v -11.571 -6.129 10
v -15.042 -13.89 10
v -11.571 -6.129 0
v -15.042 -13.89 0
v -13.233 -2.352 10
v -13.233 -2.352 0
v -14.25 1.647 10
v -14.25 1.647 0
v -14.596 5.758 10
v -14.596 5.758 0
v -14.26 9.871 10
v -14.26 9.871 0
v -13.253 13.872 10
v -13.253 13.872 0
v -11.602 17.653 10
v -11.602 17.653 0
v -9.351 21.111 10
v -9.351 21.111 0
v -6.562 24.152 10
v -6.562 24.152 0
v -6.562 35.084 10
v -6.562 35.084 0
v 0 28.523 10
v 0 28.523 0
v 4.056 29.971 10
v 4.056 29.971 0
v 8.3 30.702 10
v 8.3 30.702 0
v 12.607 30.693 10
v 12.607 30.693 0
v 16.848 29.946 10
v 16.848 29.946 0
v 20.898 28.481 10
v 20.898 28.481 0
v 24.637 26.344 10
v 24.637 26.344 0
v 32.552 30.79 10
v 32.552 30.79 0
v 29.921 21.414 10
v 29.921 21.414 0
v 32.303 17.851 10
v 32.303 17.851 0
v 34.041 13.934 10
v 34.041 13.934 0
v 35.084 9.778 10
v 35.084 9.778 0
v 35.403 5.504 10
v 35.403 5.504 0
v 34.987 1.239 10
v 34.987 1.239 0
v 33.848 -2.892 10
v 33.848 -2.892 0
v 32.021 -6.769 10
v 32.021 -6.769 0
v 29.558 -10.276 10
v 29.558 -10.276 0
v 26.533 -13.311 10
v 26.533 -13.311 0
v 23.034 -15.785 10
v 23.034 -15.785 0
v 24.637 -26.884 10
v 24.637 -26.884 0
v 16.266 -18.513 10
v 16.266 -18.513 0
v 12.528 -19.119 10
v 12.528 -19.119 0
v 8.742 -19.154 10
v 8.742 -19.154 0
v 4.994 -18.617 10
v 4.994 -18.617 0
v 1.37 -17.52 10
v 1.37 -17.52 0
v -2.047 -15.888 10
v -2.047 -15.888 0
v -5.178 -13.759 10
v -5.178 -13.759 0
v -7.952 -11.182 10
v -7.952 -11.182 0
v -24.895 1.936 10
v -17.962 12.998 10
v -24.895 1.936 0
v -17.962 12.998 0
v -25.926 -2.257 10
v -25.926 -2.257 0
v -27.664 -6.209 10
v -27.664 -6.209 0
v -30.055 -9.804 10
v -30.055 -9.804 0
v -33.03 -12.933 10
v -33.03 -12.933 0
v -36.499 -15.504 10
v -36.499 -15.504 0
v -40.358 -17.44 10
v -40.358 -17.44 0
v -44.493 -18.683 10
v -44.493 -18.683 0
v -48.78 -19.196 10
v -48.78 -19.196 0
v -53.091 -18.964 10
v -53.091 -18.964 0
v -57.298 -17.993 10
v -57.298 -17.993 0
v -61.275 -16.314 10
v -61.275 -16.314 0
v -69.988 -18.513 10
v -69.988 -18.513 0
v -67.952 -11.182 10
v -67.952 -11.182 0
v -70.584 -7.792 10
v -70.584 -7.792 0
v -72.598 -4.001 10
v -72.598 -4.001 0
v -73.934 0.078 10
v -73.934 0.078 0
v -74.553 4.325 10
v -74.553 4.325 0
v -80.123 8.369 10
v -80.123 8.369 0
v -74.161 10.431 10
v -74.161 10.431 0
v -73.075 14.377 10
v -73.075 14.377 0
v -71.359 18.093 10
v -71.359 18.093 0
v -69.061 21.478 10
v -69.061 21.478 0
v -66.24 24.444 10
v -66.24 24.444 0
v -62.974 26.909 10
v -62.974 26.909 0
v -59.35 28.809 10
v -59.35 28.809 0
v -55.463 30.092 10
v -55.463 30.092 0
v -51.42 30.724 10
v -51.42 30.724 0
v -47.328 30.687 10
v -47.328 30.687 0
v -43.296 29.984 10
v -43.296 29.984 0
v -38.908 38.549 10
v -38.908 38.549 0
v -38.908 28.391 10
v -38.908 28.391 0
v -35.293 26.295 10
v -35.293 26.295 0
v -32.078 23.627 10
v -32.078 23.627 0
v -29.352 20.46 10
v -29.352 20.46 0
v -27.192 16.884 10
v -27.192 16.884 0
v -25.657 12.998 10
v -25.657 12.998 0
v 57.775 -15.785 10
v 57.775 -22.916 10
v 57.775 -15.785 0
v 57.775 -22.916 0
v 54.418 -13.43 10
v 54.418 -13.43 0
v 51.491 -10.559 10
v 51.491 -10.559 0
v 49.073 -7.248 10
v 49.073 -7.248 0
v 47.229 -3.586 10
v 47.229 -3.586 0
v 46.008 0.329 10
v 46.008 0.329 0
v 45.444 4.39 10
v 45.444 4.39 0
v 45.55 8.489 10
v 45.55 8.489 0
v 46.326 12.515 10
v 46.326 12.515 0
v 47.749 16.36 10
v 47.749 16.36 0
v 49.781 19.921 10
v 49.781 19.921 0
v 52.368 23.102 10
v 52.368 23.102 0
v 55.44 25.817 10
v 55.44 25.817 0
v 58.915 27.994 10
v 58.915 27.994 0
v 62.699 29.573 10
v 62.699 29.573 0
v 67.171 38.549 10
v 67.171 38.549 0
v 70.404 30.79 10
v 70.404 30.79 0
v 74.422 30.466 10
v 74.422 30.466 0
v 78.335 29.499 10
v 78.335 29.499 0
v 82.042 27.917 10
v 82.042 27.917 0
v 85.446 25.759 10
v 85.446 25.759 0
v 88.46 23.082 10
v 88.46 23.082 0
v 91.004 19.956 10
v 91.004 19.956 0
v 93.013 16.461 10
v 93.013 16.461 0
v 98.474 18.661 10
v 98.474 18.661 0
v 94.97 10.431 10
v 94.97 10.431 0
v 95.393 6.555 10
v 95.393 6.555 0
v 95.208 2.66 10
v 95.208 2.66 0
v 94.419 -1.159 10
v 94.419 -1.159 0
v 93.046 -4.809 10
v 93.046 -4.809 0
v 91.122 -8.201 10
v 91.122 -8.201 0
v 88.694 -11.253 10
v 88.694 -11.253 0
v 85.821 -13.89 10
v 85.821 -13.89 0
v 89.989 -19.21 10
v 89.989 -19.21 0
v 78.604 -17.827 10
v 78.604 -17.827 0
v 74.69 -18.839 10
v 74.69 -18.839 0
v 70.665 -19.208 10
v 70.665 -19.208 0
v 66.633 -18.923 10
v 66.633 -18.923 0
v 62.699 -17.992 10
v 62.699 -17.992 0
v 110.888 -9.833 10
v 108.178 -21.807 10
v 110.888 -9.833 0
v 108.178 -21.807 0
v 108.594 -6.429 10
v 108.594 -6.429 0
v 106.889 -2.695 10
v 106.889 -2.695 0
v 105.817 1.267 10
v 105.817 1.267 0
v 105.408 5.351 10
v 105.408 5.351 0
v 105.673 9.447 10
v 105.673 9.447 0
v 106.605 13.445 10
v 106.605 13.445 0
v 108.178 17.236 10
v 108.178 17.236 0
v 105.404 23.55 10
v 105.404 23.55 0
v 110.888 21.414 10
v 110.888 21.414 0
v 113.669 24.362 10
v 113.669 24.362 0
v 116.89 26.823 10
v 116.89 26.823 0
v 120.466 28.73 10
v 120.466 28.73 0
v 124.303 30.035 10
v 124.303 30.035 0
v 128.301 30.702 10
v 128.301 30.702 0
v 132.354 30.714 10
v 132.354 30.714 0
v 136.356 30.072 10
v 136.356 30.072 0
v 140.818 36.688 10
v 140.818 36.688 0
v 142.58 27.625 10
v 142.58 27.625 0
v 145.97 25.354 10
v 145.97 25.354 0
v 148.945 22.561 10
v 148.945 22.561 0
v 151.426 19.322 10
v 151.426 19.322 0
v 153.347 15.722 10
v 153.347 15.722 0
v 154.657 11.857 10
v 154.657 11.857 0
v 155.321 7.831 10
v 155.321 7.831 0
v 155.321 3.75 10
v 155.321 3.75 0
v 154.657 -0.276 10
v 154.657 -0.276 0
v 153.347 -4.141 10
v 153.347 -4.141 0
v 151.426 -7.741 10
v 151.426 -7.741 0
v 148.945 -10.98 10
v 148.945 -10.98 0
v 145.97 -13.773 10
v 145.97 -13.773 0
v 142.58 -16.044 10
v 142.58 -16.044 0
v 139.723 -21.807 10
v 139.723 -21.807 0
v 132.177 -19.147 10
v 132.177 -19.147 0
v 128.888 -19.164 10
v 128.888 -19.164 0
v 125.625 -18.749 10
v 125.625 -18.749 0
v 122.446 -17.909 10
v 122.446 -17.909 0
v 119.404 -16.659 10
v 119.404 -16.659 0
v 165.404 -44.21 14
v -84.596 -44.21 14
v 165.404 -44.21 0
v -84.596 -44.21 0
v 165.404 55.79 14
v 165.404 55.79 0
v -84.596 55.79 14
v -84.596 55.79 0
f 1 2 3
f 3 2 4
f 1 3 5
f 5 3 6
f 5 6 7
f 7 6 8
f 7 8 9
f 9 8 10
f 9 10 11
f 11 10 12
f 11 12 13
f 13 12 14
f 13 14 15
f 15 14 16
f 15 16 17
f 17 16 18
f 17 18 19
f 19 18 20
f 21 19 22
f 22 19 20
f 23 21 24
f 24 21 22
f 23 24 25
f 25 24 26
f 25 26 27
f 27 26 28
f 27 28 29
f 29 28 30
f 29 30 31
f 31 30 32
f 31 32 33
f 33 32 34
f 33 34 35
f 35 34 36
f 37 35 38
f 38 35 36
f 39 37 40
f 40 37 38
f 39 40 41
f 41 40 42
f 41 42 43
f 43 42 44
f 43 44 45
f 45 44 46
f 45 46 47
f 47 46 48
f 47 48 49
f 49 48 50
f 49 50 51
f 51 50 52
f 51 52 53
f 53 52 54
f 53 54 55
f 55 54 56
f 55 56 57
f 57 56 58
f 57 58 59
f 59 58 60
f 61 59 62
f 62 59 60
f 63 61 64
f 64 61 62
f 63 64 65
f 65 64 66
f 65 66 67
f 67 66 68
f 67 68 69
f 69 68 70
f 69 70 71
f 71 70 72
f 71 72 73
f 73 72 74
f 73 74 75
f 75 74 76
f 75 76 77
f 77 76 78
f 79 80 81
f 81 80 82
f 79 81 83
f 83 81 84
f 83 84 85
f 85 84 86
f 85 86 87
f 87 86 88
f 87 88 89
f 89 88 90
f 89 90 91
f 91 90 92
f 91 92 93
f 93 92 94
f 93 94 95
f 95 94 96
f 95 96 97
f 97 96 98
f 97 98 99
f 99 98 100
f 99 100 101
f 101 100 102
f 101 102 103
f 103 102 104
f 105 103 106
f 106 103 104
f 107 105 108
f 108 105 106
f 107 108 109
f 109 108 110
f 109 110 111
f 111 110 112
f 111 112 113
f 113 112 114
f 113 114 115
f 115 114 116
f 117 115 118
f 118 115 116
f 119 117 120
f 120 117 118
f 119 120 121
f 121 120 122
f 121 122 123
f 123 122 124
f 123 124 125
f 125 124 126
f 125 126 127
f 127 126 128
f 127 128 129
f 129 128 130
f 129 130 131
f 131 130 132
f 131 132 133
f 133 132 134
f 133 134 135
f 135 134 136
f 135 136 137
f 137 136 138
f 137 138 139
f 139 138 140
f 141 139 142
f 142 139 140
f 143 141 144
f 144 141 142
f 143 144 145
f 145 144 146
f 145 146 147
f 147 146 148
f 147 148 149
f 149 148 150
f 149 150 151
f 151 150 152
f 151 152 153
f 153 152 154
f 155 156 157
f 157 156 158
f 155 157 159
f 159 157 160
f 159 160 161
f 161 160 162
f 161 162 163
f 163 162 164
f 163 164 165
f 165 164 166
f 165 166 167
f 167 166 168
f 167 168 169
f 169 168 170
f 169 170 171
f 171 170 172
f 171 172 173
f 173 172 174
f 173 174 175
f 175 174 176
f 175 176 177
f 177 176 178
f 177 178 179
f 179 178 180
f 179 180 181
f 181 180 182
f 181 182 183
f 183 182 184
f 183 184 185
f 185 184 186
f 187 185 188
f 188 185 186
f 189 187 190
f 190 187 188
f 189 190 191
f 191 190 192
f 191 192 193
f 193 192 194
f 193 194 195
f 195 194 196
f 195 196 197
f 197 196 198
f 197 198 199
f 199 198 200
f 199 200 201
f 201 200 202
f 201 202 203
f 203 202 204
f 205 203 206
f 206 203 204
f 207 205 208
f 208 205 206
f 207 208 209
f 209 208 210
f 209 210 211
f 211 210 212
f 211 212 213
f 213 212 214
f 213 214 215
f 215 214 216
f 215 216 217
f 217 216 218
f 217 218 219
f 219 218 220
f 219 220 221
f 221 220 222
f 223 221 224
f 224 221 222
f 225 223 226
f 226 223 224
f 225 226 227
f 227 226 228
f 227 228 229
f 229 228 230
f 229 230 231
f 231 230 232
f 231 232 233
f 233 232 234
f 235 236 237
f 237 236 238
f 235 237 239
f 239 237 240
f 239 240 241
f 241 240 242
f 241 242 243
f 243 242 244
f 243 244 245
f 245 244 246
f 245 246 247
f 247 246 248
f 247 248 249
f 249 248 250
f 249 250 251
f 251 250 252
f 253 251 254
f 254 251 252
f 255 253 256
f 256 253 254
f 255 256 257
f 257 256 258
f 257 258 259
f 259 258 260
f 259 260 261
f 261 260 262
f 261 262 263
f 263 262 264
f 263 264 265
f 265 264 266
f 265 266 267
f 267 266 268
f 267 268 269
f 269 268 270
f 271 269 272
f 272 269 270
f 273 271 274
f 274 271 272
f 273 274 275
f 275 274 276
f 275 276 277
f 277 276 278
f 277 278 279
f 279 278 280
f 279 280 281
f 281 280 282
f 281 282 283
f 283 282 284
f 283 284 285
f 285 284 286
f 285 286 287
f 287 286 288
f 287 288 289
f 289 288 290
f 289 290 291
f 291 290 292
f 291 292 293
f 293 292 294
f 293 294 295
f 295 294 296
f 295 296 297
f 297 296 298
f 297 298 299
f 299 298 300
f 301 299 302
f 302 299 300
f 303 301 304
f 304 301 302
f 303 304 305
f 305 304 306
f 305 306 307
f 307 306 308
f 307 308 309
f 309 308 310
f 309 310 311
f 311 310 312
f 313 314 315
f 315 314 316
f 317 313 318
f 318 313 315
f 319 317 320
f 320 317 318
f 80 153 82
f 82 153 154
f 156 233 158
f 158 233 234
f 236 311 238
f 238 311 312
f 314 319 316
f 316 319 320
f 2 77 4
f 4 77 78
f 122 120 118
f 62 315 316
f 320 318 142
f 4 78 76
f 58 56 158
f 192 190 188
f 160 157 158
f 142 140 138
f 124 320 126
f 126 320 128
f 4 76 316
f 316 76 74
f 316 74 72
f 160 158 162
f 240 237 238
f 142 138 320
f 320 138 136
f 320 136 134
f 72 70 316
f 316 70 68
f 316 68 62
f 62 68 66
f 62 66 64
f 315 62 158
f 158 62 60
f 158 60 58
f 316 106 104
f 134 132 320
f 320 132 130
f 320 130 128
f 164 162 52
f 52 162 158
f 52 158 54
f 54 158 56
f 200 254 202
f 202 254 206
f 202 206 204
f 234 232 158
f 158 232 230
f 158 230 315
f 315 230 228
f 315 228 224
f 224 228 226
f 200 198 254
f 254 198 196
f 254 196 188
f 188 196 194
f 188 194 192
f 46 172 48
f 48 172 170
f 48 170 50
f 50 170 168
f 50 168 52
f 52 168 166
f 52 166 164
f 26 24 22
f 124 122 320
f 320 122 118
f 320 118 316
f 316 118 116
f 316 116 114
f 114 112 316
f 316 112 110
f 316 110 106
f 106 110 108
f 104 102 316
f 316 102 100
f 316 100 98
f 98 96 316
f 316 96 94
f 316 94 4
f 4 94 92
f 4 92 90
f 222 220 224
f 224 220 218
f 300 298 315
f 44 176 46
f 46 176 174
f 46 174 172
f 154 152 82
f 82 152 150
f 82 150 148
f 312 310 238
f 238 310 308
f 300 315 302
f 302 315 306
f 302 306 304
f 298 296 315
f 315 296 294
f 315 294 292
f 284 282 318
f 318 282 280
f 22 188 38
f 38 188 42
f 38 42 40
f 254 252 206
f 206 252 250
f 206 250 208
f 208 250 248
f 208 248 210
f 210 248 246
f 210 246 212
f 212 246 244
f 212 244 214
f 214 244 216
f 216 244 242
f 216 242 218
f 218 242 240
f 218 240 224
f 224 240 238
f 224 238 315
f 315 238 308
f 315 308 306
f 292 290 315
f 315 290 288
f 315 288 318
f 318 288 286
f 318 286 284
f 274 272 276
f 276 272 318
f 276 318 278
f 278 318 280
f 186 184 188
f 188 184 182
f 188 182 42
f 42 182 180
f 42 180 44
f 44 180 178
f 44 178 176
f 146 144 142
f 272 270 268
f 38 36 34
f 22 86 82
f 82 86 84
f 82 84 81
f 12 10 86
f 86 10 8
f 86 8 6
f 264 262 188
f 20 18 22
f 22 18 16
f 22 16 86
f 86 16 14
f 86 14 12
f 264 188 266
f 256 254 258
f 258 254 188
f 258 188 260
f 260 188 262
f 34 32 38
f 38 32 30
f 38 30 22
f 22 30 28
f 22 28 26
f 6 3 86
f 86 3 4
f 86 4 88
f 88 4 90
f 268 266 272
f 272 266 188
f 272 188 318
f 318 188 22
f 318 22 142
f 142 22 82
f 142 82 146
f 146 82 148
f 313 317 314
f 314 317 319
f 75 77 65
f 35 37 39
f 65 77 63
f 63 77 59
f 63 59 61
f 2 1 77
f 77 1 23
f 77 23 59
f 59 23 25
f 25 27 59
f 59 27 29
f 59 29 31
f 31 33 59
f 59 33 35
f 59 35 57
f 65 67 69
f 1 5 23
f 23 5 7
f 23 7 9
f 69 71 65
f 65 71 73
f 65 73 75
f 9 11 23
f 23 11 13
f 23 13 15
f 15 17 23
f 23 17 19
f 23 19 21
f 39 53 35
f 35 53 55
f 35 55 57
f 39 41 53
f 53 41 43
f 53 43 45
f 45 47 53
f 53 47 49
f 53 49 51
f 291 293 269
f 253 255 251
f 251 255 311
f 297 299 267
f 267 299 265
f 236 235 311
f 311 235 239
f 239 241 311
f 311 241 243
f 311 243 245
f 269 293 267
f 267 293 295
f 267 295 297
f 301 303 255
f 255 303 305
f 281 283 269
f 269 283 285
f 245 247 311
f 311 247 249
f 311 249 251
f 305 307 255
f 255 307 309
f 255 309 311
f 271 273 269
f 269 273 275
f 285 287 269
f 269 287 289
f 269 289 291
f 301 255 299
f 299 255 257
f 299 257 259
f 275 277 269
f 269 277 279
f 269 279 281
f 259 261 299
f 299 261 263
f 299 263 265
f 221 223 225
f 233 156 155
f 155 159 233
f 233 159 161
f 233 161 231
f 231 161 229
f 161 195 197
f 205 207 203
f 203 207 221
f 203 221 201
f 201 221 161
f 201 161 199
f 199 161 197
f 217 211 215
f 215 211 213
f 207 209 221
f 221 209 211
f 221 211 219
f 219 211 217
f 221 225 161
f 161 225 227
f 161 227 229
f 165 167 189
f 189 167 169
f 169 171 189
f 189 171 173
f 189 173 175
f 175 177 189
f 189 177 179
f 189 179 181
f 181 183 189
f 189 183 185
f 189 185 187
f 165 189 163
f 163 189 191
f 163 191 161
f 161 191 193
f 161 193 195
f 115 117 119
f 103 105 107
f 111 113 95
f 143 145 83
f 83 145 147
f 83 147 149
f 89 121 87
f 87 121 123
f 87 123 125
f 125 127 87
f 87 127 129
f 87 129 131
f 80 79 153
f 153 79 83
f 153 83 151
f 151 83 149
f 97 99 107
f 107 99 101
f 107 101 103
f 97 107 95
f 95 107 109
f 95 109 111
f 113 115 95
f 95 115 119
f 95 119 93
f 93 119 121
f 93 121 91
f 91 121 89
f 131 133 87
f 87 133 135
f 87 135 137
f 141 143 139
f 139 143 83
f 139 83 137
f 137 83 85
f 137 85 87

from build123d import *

# Parameters (mm, degrees)
BOSS_EXTRUDE2_DEPTH = 10
SKETCH2_W           = 250
SKETCH2_H           = 100
BOSS_EXTRUDE3_DEPTH = 4


with BuildPart() as part:
    # Sketch1 → Boss-Extrude2 (new body)
    with BuildSketch(Plane.XY):
        with BuildLine():
            Line((-49.595588235, 30.790441176), (-49.595588235, 55.790441176))
            Line((-49.595588235, 55.790441176), (-84.595588235, 55.790441176))
            Line((-84.595588235, 55.790441176), (-84.595588235, 5.790441176))
            Line((-84.595588235, 5.790441176), (-76.571127836, 5.790441176))
            Line((-76.571127836, 5.790441176), (-80.122995865, 8.369201143))
            Line((-80.122995865, 8.369201143), (-74.161024923, 10.431488509))
            ThreePointArc((-74.161024923, 10.431488509), (-65.548234046, 25.0391578), (-49.595588235, 30.790441176))
        make_face()
        with BuildLine():
            Line((10.404411765, 55.790441176), (-49.595588235, 55.790441176))
            Line((-49.595588235, 55.790441176), (-49.595588235, 30.790441176))
            ThreePointArc((-49.595588235, 30.790441176), (-46.420318597, 30.587974576), (-43.296479842, 29.983854194))
            Line((-43.296479842, 29.983854194), (-38.907655076, 38.5487403))
            Line((-38.907655076, 38.5487403), (-38.907655076, 28.390620042))
            ThreePointArc((-38.907655076, 28.390620042), (-30.648795615, 22.100531594), (-25.657089919, 12.997957973))
            Line((-25.657089919, 12.997957973), (-17.962154019, 12.997957973))
            Line((-17.962154019, 12.997957973), (-22.478851702, 5.790441176))
            Line((-22.478851702, 5.790441176), (-14.595588235, 5.790441176))
            ThreePointArc((-14.595588235, 5.790441176), (-12.499276658, 15.811471895), (-6.561903703, 24.151926396))
            Line((-6.561903703, 24.151926396), (-6.561903703, 35.084441479))
            Line((-6.561903703, 35.084441479), (0, 28.522537776))
            ThreePointArc((0, 28.522537776), (5.080053353, 30.216886016), (10.404411765, 30.790441176))
            Line((10.404411765, 30.790441176), (10.404411765, 55.790441176))
        make_face()
        with BuildLine():
            Line((70.404411765, 55.790441176), (10.404411765, 55.790441176))
            Line((10.404411765, 55.790441176), (10.404411765, 30.790441176))
            ThreePointArc((10.404411765, 30.790441176), (17.859813508, 29.652900917), (24.63674968, 26.343799964))
            Line((24.63674968, 26.343799964), (32.552494412, 30.790441176))
            Line((32.552494412, 30.790441176), (29.92126971, 21.41389329))
            ThreePointArc((29.92126971, 21.41389329), (33.993831518, 14.069286246), (35.404411765, 5.790441176))
            Line((35.404411765, 5.790441176), (45.404411765, 5.790441176))
            ThreePointArc((45.404411765, 5.790441176), (50.185133178, 20.493528384), (62.698873639, 29.573306483))
            Line((62.698873639, 29.573306483), (67.171172857, 38.5487403))
            Line((67.171172857, 38.5487403), (70.404411765, 30.790441176))
            Line((70.404411765, 30.790441176), (70.404411765, 55.790441176))
        make_face()
        with BuildLine():
            Line((130.404411765, 55.790441176), (70.404411765, 55.790441176))
            Line((70.404411765, 55.790441176), (70.404411765, 30.790441176))
            ThreePointArc((70.404411765, 30.790441176), (83.787720088, 26.906479118), (93.012607471, 16.461405843))
            Line((93.012607471, 16.461405843), (98.474145882, 18.660683713))
            Line((98.474145882, 18.660683713), (94.969848452, 10.431488509))
            ThreePointArc((94.969848452, 10.431488509), (95.295533849, 8.1211152), (95.404411765, 5.790441176))
            Line((95.404411765, 5.790441176), (105.404411765, 5.790441176))
            ThreePointArc((105.404411765, 5.790441176), (106.107781477, 11.678883811), (108.178312298, 17.23598627))
            Line((108.178312298, 17.23598627), (105.404411765, 23.549684511))
            Line((105.404411765, 23.549684511), (110.88755382, 21.41389329))
            ThreePointArc((110.88755382, 21.41389329), (119.578200582, 28.324707338), (130.404411765, 30.790441176))
            Line((130.404411765, 30.790441176), (130.404411765, 55.790441176))
        make_face()
        with BuildLine():
            Line((165.404411765, 55.790441176), (130.404411765, 55.790441176))
            Line((130.404411765, 55.790441176), (130.404411765, 30.790441176))
            ThreePointArc((130.404411765, 30.790441176), (133.401752606, 30.610109746), (136.355852267, 30.071717007))
            Line((136.355852267, 30.071717007), (140.818257218, 36.687543597))
            Line((140.818257218, 36.687543597), (142.579811014, 27.625267787))
            ThreePointArc((142.579811014, 27.625267787), (151.961139035, 18.451701358), (155.404411765, 5.790441176))
            Line((155.404411765, 5.790441176), (165.404411765, 5.790441176))
            Line((165.404411765, 5.790441176), (165.404411765, 55.790441176))
        make_face()
        with BuildLine():
            Line((165.404411765, -44.209558824), (165.404411765, 5.790441176))
            Line((165.404411765, 5.790441176), (155.404411765, 5.790441176))
            ThreePointArc((155.404411765, 5.790441176), (151.961139035, -6.870819005), (142.579811014, -16.044385434))
            Line((142.579811014, -16.044385434), (139.723435627, -21.807209952))
            Line((139.723435627, -21.807209952), (132.176529952, -19.14667167))
            ThreePointArc((132.176529952, -19.14667167), (131.291028602, -19.193832089), (130.404411765, -19.209558824))
            Line((130.404411765, -19.209558824), (130.404411765, -44.209558824))
            Line((130.404411765, -44.209558824), (165.404411765, -44.209558824))
        make_face()
        with BuildLine():
            ThreePointArc((78.603951233, -17.826661789), (74.562080934, -18.861410419), (70.404411765, -19.209558824))
            Line((70.404411765, -19.209558824), (70.404411765, -44.209558824))
            Line((70.404411765, -44.209558824), (130.404411765, -44.209558824))
            Line((130.404411765, -44.209558824), (130.404411765, -19.209558824))
            ThreePointArc((130.404411765, -19.209558824), (124.758153779, -18.563609221), (119.403671642, -16.659140484))
            Line((119.403671642, -16.659140484), (108.178312298, -21.807209952))
            Line((108.178312298, -21.807209952), (110.88755382, -9.833010937))
            ThreePointArc((110.88755382, -9.833010937), (106.814992011, -2.488403893), (105.404411765, 5.790441176))
            Line((105.404411765, 5.790441176), (95.404411765, 5.790441176))
            ThreePointArc((95.404411765, 5.790441176), (92.88136777, -5.154258396), (85.821495865, -13.889841287))
            Line((85.821495865, -13.889841287), (89.988841167, -19.209558824))
            Line((89.988841167, -19.209558824), (78.603951233, -17.826661789))
        make_face()
        with BuildLine():
            ThreePointArc((16.26584722, -18.512718585), (13.35576789, -19.034737514), (10.404411765, -19.209558824))
            Line((10.404411765, -19.209558824), (10.404411765, -44.209558824))
            Line((10.404411765, -44.209558824), (70.404411765, -44.209558824))
            Line((70.404411765, -44.209558824), (70.404411765, -19.209558824))
            ThreePointArc((70.404411765, -19.209558824), (66.503875434, -18.903400492), (62.698873639, -17.99242413))
            Line((62.698873639, -17.99242413), (57.774840306, -22.916457463))
            Line((57.774840306, -22.916457463), (57.774840306, -15.784867043))
            ThreePointArc((57.774840306, -15.784867043), (48.716404866, -6.644604331), (45.404411765, 5.790441176))
            Line((45.404411765, 5.790441176), (35.404411765, 5.790441176))
            ThreePointArc((35.404411765, 5.790441176), (32.092418663, -6.644604331), (23.033983223, -15.784867043))
            Line((23.033983223, -15.784867043), (24.63674968, -26.883621045))
            Line((24.63674968, -26.883621045), (16.26584722, -18.512718585))
        make_face()
        with BuildLine():
            ThreePointArc((-24.894580949, 1.935543121), (-33.337858557, -13.20129981), (-49.595588235, -19.209558824))
            Line((-49.595588235, -19.209558824), (-49.595588235, -44.209558824))
            Line((-49.595588235, -44.209558824), (10.404411765, -44.209558824))
            Line((10.404411765, -44.209558824), (10.404411765, -19.209558824))
            ThreePointArc((10.404411765, -19.209558824), (0.386918535, -17.114794674), (-7.951831841, -11.181545175))
            Line((-7.951831841, -11.181545175), (-15.042390882, -13.889841287))
            Line((-15.042390882, -13.889841287), (-11.571398063, -6.128610062))
            ThreePointArc((-11.571398063, -6.128610062), (-13.827749155, -0.357922603), (-14.595588235, 5.790441176))
            Line((-14.595588235, 5.790441176), (-22.478851702, 5.790441176))
            Line((-22.478851702, 5.790441176), (-24.894580949, 1.935543121))
        make_face()
        with BuildLine():
            Line((-76.571127836, 5.790441176), (-84.595588235, 5.790441176))
            Line((-84.595588235, 5.790441176), (-84.595588235, -44.209558824))
            Line((-84.595588235, -44.209558824), (-49.595588235, -44.209558824))
            Line((-49.595588235, -44.209558824), (-49.595588235, -19.209558824))
            ThreePointArc((-49.595588235, -19.209558824), (-55.612209406, -18.474765802), (-61.275152877, -16.313580398))
            Line((-61.275152877, -16.313580398), (-69.988075999, -18.512718585))
            Line((-69.988075999, -18.512718585), (-67.951831841, -11.181545175))
            ThreePointArc((-67.951831841, -11.181545175), (-72.598243173, -4.001283177), (-74.552596729, 4.324928615))
            Line((-74.552596729, 4.324928615), (-76.571127836, 5.790441176))
        make_face()
    extrude(amount=BOSS_EXTRUDE2_DEPTH)

    # Sketch2 → Boss-Extrude3 (add)
    with BuildSketch(Plane.XY.offset(10)):
        with Locations((40.404411765, 5.790441176)):
            Rectangle(SKETCH2_W, SKETCH2_H)
    extrude(amount=BOSS_EXTRUDE3_DEPTH)


solid = part.part
